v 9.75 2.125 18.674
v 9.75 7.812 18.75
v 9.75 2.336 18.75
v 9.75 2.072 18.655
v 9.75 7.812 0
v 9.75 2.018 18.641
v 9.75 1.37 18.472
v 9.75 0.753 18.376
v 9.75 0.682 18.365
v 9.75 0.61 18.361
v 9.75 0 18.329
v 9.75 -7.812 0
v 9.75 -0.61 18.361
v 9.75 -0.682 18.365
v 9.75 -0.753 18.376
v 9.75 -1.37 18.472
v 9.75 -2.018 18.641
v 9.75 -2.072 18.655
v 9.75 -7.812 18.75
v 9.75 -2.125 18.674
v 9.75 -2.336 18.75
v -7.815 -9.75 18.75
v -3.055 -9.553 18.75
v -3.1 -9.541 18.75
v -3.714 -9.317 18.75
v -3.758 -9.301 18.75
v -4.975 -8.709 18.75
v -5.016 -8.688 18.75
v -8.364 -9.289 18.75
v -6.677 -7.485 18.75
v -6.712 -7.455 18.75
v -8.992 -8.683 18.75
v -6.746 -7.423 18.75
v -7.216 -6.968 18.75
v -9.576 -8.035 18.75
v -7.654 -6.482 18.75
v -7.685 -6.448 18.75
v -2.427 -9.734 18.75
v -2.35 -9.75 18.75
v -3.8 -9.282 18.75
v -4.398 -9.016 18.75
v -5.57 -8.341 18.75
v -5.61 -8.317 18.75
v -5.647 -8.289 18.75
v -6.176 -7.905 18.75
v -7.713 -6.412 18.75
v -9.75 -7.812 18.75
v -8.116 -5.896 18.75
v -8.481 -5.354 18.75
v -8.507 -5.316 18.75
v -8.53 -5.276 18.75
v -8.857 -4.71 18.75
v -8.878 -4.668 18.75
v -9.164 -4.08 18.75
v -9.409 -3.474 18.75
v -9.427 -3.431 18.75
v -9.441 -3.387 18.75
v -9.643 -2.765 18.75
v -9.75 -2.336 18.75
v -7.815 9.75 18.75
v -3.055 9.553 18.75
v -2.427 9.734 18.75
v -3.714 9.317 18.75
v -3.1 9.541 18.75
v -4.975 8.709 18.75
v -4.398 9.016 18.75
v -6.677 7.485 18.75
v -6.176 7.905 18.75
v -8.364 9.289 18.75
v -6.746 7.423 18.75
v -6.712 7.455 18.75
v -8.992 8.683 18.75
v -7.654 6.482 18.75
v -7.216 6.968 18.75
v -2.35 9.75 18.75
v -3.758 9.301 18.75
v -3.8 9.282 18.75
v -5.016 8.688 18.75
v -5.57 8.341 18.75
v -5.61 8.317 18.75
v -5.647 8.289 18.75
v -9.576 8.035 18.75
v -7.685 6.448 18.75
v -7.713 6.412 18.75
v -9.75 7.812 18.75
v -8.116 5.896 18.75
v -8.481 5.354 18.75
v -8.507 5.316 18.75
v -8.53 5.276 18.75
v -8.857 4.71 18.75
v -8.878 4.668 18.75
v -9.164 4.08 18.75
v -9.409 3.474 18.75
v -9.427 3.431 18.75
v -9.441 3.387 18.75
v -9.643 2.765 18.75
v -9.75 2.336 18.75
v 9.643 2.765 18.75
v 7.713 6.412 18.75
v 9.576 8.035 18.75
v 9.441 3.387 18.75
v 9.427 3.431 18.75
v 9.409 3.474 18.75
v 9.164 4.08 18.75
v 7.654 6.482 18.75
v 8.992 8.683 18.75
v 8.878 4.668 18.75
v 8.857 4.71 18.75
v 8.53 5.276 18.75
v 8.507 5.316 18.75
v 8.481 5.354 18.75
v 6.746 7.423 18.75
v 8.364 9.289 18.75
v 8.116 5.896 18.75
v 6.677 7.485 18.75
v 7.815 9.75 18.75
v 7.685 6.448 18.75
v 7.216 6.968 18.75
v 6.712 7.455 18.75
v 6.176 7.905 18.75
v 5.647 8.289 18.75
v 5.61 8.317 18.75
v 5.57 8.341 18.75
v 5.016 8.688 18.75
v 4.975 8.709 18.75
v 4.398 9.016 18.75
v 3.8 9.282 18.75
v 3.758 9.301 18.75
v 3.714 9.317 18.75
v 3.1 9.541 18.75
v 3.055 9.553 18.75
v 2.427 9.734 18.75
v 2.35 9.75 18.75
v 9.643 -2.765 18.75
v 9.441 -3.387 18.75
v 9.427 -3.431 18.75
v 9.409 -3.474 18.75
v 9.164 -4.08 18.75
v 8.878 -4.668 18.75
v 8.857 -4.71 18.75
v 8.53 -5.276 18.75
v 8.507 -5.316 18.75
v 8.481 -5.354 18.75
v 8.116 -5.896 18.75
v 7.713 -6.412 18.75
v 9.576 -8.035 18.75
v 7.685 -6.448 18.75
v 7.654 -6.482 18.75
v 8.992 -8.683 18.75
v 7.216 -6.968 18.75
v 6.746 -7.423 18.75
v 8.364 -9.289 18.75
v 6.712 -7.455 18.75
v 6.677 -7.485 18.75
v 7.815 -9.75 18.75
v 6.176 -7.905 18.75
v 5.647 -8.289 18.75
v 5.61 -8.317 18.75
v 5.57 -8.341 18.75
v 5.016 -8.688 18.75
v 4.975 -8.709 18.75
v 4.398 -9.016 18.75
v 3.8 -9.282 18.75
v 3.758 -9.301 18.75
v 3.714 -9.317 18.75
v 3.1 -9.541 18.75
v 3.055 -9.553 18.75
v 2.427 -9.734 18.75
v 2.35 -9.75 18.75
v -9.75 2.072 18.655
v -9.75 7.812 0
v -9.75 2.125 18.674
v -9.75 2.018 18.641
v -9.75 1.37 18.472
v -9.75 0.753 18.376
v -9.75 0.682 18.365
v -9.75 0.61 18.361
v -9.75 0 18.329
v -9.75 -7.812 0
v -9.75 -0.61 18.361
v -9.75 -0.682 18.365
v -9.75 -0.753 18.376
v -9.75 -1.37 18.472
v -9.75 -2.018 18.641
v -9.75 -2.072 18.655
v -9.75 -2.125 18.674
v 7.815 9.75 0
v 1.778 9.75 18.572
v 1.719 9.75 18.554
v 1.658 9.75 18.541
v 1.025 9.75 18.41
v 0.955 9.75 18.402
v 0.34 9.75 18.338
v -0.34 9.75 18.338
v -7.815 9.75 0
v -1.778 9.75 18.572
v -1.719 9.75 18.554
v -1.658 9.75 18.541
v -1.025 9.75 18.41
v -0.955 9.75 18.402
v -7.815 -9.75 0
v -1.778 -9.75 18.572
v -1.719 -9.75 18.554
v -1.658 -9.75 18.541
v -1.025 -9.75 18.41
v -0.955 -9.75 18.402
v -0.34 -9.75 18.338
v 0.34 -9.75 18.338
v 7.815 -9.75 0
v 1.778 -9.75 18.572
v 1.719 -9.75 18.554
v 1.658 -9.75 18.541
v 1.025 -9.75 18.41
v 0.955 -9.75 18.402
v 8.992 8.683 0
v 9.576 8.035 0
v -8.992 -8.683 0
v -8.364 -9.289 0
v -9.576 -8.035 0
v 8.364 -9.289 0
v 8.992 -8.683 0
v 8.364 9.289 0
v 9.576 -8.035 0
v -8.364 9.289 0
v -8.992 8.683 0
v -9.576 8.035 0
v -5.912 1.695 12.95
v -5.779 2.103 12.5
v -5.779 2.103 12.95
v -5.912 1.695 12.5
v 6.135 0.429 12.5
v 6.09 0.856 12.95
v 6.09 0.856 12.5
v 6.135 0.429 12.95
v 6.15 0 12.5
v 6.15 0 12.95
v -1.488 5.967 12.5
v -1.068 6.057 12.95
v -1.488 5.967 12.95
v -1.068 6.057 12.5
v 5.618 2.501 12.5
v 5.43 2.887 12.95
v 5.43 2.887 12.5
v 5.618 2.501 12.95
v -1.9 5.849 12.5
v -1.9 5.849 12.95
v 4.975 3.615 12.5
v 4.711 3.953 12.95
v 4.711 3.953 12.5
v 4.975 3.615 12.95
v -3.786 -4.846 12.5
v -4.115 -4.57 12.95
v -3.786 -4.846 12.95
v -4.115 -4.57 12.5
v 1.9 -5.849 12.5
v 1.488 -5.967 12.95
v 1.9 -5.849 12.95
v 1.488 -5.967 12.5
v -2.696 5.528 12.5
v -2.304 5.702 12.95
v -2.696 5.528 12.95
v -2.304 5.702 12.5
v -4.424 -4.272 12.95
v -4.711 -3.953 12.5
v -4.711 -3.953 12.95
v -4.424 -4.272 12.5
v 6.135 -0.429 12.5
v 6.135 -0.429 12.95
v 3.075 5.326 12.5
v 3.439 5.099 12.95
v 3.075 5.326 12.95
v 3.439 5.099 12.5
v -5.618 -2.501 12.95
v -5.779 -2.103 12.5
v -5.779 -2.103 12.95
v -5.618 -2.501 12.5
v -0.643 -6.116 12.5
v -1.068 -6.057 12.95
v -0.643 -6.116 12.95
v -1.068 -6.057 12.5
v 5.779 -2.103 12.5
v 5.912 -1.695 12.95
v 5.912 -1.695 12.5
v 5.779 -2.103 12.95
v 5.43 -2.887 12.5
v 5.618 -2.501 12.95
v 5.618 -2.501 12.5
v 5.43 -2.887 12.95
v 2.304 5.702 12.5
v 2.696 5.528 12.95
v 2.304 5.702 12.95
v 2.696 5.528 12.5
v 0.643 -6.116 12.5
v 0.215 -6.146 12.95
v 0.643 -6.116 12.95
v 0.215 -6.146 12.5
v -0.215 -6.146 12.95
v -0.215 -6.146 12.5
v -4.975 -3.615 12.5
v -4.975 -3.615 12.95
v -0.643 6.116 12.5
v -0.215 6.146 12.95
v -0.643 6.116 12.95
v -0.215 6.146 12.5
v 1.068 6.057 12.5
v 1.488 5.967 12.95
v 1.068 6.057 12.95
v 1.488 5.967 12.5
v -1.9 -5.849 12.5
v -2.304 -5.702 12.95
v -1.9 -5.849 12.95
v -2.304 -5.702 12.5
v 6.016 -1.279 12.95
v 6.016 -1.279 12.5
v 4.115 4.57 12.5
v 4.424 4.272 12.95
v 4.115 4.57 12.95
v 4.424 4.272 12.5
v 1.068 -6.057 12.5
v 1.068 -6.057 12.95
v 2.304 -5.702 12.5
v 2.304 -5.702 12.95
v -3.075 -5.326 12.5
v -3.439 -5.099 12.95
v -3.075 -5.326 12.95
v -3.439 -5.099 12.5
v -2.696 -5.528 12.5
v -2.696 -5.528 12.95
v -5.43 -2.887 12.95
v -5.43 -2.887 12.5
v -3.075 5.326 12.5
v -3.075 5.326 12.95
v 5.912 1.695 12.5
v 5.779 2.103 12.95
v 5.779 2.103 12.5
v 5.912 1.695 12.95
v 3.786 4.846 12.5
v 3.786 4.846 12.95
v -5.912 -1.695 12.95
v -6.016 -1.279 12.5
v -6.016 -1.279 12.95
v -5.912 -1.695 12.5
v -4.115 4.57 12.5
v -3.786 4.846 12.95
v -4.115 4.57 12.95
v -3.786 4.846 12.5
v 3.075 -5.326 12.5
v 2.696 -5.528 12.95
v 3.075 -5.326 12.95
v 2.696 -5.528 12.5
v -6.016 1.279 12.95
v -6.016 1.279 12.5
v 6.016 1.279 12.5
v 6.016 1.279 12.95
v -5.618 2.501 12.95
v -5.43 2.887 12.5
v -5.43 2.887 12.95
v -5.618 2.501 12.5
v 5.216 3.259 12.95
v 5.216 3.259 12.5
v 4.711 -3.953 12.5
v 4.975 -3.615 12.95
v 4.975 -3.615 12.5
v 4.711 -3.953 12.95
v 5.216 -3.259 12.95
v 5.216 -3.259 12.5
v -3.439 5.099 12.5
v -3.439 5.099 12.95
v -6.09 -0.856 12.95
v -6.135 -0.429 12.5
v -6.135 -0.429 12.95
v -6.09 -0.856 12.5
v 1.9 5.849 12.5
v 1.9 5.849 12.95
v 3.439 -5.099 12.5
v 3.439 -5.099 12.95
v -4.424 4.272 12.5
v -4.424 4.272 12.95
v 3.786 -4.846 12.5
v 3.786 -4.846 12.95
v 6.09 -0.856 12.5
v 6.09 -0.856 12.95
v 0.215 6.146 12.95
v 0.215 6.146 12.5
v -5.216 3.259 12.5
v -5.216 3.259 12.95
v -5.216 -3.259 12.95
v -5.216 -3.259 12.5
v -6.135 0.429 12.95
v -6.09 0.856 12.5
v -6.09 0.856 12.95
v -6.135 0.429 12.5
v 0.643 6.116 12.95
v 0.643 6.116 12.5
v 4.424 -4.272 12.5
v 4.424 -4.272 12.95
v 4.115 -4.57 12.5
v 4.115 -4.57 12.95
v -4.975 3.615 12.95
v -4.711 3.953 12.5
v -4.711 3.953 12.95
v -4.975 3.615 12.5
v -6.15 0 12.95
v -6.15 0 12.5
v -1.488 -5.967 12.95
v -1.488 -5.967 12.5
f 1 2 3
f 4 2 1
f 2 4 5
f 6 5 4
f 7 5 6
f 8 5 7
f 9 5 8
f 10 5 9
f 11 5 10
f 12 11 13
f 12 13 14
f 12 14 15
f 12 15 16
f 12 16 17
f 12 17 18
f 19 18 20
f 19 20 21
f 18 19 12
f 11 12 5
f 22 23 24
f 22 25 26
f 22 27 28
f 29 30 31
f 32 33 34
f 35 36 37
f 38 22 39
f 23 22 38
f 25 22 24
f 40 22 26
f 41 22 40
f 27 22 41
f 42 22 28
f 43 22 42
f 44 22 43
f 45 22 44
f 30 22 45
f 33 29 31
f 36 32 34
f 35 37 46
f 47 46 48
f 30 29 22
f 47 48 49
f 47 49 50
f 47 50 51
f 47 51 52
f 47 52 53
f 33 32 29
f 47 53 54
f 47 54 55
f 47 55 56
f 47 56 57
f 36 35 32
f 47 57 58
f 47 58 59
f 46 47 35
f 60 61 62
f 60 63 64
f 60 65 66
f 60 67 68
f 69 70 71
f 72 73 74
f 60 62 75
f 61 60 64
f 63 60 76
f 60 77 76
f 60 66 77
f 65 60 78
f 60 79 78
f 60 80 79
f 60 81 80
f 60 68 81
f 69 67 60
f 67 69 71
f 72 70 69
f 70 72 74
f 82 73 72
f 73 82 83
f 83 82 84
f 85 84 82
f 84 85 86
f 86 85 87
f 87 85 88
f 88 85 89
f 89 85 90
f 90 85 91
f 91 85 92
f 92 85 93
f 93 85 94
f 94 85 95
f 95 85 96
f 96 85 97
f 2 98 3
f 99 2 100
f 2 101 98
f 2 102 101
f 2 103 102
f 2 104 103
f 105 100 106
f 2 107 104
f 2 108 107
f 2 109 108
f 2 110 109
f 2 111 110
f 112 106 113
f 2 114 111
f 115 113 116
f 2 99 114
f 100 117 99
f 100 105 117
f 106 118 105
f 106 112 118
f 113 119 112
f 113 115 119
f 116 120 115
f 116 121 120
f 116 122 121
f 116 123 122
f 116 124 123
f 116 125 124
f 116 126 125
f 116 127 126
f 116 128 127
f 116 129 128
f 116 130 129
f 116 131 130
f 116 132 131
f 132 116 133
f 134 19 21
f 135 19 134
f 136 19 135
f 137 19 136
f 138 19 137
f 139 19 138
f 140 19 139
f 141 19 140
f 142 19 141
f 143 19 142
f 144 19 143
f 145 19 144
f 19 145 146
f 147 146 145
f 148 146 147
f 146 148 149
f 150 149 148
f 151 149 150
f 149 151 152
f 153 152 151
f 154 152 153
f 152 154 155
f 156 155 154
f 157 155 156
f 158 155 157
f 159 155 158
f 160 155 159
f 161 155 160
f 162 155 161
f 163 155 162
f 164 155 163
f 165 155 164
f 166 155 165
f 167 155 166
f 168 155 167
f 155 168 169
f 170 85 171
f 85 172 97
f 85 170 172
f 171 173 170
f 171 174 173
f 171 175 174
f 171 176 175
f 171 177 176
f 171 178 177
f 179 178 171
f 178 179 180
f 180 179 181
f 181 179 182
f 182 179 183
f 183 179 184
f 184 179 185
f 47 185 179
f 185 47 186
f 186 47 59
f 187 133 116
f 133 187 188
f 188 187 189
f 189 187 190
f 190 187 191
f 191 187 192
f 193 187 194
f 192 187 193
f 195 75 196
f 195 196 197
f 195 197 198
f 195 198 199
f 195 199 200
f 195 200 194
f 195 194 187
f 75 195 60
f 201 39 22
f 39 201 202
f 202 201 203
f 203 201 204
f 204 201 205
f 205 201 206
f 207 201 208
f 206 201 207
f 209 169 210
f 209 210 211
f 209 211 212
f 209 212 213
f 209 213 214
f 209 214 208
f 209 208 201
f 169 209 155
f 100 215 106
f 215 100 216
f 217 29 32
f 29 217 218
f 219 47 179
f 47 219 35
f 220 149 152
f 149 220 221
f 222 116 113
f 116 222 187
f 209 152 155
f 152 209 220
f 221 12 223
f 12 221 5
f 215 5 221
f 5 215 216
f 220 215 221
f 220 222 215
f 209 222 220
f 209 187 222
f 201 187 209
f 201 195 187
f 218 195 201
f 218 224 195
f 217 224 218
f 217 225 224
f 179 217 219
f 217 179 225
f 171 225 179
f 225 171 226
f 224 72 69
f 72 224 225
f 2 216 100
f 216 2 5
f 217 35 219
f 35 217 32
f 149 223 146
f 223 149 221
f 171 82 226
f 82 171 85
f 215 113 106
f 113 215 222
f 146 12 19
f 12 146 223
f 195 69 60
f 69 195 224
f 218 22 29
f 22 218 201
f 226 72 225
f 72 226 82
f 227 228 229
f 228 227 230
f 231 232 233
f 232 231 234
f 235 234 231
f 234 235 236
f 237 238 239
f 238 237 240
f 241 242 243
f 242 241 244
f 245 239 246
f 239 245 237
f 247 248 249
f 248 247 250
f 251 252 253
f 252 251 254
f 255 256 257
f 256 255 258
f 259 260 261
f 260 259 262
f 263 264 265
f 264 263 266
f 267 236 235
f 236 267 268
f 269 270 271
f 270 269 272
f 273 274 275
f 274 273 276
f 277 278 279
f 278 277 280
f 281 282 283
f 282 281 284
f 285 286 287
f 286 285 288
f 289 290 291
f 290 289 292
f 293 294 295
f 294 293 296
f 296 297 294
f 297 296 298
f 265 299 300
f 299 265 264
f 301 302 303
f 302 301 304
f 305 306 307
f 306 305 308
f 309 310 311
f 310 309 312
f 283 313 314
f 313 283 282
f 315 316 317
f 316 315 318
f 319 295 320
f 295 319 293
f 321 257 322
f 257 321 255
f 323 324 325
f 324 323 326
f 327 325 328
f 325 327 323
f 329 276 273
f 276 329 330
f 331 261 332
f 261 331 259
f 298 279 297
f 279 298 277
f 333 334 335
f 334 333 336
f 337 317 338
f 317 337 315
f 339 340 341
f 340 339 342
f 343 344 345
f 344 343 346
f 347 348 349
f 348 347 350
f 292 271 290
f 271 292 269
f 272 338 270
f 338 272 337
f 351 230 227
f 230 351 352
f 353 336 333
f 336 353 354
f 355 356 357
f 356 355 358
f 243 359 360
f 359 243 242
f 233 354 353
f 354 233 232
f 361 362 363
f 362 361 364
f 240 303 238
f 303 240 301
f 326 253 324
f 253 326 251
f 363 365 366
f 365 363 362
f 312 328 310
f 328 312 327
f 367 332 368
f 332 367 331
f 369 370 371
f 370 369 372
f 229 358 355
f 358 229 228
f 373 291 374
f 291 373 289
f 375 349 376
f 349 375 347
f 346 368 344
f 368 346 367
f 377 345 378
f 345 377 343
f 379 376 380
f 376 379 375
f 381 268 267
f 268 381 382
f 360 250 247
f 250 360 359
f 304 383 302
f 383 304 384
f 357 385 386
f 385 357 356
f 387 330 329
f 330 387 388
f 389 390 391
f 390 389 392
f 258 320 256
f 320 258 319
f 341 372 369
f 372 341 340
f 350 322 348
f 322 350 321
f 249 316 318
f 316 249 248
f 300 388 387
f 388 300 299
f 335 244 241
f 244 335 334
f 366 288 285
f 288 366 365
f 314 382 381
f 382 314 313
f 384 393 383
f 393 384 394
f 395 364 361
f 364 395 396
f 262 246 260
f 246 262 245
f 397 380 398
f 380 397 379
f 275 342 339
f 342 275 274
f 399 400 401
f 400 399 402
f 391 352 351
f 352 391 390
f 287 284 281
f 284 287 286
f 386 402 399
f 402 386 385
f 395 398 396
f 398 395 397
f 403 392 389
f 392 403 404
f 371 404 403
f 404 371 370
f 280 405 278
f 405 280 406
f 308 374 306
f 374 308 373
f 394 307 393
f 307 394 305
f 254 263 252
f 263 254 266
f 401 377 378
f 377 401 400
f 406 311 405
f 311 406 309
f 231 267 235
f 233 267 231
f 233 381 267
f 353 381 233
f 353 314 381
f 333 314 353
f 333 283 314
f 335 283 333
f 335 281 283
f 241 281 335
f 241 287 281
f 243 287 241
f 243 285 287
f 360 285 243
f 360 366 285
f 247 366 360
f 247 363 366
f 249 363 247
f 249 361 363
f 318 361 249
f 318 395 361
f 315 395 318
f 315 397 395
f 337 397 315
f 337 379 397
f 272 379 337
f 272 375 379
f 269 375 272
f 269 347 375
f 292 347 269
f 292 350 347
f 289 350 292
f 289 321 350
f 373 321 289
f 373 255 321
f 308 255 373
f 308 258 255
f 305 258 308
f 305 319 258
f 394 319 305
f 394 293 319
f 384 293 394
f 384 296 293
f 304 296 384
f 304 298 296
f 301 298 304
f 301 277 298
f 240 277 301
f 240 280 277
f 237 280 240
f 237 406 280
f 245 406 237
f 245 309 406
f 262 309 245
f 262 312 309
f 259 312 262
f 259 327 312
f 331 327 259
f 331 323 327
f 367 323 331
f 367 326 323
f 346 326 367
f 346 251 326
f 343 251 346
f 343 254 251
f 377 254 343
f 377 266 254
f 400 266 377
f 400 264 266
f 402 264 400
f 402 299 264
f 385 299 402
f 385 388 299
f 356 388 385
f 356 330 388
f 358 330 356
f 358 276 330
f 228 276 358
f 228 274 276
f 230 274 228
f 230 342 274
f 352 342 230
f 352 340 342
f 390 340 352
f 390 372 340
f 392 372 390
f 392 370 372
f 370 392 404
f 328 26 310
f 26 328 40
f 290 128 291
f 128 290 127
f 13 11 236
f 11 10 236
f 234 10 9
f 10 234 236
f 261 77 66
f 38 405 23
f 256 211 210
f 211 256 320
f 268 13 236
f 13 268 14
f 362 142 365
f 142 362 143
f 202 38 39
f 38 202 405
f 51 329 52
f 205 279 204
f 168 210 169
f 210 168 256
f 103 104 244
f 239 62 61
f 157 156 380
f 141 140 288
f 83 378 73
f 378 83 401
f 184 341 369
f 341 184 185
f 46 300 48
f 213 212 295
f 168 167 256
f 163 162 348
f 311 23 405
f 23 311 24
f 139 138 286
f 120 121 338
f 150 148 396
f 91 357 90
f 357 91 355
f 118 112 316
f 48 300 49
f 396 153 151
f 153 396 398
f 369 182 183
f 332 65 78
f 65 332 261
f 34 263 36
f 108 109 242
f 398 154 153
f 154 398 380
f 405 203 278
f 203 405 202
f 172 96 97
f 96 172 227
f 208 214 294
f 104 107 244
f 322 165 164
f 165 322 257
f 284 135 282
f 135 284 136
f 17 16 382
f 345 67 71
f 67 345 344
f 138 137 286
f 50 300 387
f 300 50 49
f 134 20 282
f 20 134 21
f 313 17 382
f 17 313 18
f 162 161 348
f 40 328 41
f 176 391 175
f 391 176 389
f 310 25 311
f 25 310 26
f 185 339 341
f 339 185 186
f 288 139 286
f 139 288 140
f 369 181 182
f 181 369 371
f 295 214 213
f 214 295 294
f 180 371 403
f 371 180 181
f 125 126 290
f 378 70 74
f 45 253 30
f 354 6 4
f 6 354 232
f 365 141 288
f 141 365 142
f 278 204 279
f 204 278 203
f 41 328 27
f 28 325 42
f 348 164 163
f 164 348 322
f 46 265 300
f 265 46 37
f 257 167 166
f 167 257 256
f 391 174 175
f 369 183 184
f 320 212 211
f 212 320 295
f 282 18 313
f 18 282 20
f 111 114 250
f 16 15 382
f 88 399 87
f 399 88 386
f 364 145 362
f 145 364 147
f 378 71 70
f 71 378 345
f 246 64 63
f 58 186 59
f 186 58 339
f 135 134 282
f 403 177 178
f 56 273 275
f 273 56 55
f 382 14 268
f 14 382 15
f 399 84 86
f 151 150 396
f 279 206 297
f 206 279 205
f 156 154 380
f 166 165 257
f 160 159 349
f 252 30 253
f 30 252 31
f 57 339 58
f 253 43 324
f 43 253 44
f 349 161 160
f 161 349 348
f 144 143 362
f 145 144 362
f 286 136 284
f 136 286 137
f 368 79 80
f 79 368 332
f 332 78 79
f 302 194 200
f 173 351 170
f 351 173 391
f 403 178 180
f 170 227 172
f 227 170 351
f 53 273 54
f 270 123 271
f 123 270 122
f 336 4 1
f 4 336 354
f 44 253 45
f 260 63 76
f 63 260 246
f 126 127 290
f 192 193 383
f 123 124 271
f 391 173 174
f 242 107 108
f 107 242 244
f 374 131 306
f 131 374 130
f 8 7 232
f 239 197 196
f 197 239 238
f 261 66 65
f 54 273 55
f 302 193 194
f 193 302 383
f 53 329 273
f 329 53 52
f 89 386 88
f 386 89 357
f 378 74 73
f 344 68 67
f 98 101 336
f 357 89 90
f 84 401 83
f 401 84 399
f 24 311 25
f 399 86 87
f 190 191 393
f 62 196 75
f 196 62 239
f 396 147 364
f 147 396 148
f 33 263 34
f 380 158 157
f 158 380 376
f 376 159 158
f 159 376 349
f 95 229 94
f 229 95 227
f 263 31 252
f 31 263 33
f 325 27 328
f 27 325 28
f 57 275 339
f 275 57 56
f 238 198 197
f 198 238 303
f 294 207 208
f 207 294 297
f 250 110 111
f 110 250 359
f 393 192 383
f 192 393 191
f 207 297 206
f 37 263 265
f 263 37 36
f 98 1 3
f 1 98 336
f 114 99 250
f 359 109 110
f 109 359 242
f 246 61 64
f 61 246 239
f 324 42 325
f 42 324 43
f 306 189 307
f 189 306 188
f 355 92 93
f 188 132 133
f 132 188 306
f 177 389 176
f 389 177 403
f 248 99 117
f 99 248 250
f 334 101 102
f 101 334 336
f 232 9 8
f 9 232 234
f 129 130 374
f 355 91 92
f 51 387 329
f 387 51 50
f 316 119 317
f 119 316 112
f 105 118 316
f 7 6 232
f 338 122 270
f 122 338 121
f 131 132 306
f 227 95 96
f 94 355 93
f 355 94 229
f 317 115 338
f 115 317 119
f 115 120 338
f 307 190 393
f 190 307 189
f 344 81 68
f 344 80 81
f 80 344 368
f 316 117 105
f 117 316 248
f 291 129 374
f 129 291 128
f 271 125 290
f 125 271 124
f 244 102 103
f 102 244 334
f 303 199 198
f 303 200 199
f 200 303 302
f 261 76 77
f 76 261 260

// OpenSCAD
$fn=90;

difference() {
    intersection() {
        translate([0, 0, 8.75]) cube([19.5, 19.5, 20], center=true);
        cylinder(h=20, d=25);
    }
    translate([0, 0, 12.5]) union(){
        cylinder(h=0.45, d=12.3);
        translate([0, 0, 0.45]) cylinder(h=6.5, d1=12.3, d2=21); 
    }

}
